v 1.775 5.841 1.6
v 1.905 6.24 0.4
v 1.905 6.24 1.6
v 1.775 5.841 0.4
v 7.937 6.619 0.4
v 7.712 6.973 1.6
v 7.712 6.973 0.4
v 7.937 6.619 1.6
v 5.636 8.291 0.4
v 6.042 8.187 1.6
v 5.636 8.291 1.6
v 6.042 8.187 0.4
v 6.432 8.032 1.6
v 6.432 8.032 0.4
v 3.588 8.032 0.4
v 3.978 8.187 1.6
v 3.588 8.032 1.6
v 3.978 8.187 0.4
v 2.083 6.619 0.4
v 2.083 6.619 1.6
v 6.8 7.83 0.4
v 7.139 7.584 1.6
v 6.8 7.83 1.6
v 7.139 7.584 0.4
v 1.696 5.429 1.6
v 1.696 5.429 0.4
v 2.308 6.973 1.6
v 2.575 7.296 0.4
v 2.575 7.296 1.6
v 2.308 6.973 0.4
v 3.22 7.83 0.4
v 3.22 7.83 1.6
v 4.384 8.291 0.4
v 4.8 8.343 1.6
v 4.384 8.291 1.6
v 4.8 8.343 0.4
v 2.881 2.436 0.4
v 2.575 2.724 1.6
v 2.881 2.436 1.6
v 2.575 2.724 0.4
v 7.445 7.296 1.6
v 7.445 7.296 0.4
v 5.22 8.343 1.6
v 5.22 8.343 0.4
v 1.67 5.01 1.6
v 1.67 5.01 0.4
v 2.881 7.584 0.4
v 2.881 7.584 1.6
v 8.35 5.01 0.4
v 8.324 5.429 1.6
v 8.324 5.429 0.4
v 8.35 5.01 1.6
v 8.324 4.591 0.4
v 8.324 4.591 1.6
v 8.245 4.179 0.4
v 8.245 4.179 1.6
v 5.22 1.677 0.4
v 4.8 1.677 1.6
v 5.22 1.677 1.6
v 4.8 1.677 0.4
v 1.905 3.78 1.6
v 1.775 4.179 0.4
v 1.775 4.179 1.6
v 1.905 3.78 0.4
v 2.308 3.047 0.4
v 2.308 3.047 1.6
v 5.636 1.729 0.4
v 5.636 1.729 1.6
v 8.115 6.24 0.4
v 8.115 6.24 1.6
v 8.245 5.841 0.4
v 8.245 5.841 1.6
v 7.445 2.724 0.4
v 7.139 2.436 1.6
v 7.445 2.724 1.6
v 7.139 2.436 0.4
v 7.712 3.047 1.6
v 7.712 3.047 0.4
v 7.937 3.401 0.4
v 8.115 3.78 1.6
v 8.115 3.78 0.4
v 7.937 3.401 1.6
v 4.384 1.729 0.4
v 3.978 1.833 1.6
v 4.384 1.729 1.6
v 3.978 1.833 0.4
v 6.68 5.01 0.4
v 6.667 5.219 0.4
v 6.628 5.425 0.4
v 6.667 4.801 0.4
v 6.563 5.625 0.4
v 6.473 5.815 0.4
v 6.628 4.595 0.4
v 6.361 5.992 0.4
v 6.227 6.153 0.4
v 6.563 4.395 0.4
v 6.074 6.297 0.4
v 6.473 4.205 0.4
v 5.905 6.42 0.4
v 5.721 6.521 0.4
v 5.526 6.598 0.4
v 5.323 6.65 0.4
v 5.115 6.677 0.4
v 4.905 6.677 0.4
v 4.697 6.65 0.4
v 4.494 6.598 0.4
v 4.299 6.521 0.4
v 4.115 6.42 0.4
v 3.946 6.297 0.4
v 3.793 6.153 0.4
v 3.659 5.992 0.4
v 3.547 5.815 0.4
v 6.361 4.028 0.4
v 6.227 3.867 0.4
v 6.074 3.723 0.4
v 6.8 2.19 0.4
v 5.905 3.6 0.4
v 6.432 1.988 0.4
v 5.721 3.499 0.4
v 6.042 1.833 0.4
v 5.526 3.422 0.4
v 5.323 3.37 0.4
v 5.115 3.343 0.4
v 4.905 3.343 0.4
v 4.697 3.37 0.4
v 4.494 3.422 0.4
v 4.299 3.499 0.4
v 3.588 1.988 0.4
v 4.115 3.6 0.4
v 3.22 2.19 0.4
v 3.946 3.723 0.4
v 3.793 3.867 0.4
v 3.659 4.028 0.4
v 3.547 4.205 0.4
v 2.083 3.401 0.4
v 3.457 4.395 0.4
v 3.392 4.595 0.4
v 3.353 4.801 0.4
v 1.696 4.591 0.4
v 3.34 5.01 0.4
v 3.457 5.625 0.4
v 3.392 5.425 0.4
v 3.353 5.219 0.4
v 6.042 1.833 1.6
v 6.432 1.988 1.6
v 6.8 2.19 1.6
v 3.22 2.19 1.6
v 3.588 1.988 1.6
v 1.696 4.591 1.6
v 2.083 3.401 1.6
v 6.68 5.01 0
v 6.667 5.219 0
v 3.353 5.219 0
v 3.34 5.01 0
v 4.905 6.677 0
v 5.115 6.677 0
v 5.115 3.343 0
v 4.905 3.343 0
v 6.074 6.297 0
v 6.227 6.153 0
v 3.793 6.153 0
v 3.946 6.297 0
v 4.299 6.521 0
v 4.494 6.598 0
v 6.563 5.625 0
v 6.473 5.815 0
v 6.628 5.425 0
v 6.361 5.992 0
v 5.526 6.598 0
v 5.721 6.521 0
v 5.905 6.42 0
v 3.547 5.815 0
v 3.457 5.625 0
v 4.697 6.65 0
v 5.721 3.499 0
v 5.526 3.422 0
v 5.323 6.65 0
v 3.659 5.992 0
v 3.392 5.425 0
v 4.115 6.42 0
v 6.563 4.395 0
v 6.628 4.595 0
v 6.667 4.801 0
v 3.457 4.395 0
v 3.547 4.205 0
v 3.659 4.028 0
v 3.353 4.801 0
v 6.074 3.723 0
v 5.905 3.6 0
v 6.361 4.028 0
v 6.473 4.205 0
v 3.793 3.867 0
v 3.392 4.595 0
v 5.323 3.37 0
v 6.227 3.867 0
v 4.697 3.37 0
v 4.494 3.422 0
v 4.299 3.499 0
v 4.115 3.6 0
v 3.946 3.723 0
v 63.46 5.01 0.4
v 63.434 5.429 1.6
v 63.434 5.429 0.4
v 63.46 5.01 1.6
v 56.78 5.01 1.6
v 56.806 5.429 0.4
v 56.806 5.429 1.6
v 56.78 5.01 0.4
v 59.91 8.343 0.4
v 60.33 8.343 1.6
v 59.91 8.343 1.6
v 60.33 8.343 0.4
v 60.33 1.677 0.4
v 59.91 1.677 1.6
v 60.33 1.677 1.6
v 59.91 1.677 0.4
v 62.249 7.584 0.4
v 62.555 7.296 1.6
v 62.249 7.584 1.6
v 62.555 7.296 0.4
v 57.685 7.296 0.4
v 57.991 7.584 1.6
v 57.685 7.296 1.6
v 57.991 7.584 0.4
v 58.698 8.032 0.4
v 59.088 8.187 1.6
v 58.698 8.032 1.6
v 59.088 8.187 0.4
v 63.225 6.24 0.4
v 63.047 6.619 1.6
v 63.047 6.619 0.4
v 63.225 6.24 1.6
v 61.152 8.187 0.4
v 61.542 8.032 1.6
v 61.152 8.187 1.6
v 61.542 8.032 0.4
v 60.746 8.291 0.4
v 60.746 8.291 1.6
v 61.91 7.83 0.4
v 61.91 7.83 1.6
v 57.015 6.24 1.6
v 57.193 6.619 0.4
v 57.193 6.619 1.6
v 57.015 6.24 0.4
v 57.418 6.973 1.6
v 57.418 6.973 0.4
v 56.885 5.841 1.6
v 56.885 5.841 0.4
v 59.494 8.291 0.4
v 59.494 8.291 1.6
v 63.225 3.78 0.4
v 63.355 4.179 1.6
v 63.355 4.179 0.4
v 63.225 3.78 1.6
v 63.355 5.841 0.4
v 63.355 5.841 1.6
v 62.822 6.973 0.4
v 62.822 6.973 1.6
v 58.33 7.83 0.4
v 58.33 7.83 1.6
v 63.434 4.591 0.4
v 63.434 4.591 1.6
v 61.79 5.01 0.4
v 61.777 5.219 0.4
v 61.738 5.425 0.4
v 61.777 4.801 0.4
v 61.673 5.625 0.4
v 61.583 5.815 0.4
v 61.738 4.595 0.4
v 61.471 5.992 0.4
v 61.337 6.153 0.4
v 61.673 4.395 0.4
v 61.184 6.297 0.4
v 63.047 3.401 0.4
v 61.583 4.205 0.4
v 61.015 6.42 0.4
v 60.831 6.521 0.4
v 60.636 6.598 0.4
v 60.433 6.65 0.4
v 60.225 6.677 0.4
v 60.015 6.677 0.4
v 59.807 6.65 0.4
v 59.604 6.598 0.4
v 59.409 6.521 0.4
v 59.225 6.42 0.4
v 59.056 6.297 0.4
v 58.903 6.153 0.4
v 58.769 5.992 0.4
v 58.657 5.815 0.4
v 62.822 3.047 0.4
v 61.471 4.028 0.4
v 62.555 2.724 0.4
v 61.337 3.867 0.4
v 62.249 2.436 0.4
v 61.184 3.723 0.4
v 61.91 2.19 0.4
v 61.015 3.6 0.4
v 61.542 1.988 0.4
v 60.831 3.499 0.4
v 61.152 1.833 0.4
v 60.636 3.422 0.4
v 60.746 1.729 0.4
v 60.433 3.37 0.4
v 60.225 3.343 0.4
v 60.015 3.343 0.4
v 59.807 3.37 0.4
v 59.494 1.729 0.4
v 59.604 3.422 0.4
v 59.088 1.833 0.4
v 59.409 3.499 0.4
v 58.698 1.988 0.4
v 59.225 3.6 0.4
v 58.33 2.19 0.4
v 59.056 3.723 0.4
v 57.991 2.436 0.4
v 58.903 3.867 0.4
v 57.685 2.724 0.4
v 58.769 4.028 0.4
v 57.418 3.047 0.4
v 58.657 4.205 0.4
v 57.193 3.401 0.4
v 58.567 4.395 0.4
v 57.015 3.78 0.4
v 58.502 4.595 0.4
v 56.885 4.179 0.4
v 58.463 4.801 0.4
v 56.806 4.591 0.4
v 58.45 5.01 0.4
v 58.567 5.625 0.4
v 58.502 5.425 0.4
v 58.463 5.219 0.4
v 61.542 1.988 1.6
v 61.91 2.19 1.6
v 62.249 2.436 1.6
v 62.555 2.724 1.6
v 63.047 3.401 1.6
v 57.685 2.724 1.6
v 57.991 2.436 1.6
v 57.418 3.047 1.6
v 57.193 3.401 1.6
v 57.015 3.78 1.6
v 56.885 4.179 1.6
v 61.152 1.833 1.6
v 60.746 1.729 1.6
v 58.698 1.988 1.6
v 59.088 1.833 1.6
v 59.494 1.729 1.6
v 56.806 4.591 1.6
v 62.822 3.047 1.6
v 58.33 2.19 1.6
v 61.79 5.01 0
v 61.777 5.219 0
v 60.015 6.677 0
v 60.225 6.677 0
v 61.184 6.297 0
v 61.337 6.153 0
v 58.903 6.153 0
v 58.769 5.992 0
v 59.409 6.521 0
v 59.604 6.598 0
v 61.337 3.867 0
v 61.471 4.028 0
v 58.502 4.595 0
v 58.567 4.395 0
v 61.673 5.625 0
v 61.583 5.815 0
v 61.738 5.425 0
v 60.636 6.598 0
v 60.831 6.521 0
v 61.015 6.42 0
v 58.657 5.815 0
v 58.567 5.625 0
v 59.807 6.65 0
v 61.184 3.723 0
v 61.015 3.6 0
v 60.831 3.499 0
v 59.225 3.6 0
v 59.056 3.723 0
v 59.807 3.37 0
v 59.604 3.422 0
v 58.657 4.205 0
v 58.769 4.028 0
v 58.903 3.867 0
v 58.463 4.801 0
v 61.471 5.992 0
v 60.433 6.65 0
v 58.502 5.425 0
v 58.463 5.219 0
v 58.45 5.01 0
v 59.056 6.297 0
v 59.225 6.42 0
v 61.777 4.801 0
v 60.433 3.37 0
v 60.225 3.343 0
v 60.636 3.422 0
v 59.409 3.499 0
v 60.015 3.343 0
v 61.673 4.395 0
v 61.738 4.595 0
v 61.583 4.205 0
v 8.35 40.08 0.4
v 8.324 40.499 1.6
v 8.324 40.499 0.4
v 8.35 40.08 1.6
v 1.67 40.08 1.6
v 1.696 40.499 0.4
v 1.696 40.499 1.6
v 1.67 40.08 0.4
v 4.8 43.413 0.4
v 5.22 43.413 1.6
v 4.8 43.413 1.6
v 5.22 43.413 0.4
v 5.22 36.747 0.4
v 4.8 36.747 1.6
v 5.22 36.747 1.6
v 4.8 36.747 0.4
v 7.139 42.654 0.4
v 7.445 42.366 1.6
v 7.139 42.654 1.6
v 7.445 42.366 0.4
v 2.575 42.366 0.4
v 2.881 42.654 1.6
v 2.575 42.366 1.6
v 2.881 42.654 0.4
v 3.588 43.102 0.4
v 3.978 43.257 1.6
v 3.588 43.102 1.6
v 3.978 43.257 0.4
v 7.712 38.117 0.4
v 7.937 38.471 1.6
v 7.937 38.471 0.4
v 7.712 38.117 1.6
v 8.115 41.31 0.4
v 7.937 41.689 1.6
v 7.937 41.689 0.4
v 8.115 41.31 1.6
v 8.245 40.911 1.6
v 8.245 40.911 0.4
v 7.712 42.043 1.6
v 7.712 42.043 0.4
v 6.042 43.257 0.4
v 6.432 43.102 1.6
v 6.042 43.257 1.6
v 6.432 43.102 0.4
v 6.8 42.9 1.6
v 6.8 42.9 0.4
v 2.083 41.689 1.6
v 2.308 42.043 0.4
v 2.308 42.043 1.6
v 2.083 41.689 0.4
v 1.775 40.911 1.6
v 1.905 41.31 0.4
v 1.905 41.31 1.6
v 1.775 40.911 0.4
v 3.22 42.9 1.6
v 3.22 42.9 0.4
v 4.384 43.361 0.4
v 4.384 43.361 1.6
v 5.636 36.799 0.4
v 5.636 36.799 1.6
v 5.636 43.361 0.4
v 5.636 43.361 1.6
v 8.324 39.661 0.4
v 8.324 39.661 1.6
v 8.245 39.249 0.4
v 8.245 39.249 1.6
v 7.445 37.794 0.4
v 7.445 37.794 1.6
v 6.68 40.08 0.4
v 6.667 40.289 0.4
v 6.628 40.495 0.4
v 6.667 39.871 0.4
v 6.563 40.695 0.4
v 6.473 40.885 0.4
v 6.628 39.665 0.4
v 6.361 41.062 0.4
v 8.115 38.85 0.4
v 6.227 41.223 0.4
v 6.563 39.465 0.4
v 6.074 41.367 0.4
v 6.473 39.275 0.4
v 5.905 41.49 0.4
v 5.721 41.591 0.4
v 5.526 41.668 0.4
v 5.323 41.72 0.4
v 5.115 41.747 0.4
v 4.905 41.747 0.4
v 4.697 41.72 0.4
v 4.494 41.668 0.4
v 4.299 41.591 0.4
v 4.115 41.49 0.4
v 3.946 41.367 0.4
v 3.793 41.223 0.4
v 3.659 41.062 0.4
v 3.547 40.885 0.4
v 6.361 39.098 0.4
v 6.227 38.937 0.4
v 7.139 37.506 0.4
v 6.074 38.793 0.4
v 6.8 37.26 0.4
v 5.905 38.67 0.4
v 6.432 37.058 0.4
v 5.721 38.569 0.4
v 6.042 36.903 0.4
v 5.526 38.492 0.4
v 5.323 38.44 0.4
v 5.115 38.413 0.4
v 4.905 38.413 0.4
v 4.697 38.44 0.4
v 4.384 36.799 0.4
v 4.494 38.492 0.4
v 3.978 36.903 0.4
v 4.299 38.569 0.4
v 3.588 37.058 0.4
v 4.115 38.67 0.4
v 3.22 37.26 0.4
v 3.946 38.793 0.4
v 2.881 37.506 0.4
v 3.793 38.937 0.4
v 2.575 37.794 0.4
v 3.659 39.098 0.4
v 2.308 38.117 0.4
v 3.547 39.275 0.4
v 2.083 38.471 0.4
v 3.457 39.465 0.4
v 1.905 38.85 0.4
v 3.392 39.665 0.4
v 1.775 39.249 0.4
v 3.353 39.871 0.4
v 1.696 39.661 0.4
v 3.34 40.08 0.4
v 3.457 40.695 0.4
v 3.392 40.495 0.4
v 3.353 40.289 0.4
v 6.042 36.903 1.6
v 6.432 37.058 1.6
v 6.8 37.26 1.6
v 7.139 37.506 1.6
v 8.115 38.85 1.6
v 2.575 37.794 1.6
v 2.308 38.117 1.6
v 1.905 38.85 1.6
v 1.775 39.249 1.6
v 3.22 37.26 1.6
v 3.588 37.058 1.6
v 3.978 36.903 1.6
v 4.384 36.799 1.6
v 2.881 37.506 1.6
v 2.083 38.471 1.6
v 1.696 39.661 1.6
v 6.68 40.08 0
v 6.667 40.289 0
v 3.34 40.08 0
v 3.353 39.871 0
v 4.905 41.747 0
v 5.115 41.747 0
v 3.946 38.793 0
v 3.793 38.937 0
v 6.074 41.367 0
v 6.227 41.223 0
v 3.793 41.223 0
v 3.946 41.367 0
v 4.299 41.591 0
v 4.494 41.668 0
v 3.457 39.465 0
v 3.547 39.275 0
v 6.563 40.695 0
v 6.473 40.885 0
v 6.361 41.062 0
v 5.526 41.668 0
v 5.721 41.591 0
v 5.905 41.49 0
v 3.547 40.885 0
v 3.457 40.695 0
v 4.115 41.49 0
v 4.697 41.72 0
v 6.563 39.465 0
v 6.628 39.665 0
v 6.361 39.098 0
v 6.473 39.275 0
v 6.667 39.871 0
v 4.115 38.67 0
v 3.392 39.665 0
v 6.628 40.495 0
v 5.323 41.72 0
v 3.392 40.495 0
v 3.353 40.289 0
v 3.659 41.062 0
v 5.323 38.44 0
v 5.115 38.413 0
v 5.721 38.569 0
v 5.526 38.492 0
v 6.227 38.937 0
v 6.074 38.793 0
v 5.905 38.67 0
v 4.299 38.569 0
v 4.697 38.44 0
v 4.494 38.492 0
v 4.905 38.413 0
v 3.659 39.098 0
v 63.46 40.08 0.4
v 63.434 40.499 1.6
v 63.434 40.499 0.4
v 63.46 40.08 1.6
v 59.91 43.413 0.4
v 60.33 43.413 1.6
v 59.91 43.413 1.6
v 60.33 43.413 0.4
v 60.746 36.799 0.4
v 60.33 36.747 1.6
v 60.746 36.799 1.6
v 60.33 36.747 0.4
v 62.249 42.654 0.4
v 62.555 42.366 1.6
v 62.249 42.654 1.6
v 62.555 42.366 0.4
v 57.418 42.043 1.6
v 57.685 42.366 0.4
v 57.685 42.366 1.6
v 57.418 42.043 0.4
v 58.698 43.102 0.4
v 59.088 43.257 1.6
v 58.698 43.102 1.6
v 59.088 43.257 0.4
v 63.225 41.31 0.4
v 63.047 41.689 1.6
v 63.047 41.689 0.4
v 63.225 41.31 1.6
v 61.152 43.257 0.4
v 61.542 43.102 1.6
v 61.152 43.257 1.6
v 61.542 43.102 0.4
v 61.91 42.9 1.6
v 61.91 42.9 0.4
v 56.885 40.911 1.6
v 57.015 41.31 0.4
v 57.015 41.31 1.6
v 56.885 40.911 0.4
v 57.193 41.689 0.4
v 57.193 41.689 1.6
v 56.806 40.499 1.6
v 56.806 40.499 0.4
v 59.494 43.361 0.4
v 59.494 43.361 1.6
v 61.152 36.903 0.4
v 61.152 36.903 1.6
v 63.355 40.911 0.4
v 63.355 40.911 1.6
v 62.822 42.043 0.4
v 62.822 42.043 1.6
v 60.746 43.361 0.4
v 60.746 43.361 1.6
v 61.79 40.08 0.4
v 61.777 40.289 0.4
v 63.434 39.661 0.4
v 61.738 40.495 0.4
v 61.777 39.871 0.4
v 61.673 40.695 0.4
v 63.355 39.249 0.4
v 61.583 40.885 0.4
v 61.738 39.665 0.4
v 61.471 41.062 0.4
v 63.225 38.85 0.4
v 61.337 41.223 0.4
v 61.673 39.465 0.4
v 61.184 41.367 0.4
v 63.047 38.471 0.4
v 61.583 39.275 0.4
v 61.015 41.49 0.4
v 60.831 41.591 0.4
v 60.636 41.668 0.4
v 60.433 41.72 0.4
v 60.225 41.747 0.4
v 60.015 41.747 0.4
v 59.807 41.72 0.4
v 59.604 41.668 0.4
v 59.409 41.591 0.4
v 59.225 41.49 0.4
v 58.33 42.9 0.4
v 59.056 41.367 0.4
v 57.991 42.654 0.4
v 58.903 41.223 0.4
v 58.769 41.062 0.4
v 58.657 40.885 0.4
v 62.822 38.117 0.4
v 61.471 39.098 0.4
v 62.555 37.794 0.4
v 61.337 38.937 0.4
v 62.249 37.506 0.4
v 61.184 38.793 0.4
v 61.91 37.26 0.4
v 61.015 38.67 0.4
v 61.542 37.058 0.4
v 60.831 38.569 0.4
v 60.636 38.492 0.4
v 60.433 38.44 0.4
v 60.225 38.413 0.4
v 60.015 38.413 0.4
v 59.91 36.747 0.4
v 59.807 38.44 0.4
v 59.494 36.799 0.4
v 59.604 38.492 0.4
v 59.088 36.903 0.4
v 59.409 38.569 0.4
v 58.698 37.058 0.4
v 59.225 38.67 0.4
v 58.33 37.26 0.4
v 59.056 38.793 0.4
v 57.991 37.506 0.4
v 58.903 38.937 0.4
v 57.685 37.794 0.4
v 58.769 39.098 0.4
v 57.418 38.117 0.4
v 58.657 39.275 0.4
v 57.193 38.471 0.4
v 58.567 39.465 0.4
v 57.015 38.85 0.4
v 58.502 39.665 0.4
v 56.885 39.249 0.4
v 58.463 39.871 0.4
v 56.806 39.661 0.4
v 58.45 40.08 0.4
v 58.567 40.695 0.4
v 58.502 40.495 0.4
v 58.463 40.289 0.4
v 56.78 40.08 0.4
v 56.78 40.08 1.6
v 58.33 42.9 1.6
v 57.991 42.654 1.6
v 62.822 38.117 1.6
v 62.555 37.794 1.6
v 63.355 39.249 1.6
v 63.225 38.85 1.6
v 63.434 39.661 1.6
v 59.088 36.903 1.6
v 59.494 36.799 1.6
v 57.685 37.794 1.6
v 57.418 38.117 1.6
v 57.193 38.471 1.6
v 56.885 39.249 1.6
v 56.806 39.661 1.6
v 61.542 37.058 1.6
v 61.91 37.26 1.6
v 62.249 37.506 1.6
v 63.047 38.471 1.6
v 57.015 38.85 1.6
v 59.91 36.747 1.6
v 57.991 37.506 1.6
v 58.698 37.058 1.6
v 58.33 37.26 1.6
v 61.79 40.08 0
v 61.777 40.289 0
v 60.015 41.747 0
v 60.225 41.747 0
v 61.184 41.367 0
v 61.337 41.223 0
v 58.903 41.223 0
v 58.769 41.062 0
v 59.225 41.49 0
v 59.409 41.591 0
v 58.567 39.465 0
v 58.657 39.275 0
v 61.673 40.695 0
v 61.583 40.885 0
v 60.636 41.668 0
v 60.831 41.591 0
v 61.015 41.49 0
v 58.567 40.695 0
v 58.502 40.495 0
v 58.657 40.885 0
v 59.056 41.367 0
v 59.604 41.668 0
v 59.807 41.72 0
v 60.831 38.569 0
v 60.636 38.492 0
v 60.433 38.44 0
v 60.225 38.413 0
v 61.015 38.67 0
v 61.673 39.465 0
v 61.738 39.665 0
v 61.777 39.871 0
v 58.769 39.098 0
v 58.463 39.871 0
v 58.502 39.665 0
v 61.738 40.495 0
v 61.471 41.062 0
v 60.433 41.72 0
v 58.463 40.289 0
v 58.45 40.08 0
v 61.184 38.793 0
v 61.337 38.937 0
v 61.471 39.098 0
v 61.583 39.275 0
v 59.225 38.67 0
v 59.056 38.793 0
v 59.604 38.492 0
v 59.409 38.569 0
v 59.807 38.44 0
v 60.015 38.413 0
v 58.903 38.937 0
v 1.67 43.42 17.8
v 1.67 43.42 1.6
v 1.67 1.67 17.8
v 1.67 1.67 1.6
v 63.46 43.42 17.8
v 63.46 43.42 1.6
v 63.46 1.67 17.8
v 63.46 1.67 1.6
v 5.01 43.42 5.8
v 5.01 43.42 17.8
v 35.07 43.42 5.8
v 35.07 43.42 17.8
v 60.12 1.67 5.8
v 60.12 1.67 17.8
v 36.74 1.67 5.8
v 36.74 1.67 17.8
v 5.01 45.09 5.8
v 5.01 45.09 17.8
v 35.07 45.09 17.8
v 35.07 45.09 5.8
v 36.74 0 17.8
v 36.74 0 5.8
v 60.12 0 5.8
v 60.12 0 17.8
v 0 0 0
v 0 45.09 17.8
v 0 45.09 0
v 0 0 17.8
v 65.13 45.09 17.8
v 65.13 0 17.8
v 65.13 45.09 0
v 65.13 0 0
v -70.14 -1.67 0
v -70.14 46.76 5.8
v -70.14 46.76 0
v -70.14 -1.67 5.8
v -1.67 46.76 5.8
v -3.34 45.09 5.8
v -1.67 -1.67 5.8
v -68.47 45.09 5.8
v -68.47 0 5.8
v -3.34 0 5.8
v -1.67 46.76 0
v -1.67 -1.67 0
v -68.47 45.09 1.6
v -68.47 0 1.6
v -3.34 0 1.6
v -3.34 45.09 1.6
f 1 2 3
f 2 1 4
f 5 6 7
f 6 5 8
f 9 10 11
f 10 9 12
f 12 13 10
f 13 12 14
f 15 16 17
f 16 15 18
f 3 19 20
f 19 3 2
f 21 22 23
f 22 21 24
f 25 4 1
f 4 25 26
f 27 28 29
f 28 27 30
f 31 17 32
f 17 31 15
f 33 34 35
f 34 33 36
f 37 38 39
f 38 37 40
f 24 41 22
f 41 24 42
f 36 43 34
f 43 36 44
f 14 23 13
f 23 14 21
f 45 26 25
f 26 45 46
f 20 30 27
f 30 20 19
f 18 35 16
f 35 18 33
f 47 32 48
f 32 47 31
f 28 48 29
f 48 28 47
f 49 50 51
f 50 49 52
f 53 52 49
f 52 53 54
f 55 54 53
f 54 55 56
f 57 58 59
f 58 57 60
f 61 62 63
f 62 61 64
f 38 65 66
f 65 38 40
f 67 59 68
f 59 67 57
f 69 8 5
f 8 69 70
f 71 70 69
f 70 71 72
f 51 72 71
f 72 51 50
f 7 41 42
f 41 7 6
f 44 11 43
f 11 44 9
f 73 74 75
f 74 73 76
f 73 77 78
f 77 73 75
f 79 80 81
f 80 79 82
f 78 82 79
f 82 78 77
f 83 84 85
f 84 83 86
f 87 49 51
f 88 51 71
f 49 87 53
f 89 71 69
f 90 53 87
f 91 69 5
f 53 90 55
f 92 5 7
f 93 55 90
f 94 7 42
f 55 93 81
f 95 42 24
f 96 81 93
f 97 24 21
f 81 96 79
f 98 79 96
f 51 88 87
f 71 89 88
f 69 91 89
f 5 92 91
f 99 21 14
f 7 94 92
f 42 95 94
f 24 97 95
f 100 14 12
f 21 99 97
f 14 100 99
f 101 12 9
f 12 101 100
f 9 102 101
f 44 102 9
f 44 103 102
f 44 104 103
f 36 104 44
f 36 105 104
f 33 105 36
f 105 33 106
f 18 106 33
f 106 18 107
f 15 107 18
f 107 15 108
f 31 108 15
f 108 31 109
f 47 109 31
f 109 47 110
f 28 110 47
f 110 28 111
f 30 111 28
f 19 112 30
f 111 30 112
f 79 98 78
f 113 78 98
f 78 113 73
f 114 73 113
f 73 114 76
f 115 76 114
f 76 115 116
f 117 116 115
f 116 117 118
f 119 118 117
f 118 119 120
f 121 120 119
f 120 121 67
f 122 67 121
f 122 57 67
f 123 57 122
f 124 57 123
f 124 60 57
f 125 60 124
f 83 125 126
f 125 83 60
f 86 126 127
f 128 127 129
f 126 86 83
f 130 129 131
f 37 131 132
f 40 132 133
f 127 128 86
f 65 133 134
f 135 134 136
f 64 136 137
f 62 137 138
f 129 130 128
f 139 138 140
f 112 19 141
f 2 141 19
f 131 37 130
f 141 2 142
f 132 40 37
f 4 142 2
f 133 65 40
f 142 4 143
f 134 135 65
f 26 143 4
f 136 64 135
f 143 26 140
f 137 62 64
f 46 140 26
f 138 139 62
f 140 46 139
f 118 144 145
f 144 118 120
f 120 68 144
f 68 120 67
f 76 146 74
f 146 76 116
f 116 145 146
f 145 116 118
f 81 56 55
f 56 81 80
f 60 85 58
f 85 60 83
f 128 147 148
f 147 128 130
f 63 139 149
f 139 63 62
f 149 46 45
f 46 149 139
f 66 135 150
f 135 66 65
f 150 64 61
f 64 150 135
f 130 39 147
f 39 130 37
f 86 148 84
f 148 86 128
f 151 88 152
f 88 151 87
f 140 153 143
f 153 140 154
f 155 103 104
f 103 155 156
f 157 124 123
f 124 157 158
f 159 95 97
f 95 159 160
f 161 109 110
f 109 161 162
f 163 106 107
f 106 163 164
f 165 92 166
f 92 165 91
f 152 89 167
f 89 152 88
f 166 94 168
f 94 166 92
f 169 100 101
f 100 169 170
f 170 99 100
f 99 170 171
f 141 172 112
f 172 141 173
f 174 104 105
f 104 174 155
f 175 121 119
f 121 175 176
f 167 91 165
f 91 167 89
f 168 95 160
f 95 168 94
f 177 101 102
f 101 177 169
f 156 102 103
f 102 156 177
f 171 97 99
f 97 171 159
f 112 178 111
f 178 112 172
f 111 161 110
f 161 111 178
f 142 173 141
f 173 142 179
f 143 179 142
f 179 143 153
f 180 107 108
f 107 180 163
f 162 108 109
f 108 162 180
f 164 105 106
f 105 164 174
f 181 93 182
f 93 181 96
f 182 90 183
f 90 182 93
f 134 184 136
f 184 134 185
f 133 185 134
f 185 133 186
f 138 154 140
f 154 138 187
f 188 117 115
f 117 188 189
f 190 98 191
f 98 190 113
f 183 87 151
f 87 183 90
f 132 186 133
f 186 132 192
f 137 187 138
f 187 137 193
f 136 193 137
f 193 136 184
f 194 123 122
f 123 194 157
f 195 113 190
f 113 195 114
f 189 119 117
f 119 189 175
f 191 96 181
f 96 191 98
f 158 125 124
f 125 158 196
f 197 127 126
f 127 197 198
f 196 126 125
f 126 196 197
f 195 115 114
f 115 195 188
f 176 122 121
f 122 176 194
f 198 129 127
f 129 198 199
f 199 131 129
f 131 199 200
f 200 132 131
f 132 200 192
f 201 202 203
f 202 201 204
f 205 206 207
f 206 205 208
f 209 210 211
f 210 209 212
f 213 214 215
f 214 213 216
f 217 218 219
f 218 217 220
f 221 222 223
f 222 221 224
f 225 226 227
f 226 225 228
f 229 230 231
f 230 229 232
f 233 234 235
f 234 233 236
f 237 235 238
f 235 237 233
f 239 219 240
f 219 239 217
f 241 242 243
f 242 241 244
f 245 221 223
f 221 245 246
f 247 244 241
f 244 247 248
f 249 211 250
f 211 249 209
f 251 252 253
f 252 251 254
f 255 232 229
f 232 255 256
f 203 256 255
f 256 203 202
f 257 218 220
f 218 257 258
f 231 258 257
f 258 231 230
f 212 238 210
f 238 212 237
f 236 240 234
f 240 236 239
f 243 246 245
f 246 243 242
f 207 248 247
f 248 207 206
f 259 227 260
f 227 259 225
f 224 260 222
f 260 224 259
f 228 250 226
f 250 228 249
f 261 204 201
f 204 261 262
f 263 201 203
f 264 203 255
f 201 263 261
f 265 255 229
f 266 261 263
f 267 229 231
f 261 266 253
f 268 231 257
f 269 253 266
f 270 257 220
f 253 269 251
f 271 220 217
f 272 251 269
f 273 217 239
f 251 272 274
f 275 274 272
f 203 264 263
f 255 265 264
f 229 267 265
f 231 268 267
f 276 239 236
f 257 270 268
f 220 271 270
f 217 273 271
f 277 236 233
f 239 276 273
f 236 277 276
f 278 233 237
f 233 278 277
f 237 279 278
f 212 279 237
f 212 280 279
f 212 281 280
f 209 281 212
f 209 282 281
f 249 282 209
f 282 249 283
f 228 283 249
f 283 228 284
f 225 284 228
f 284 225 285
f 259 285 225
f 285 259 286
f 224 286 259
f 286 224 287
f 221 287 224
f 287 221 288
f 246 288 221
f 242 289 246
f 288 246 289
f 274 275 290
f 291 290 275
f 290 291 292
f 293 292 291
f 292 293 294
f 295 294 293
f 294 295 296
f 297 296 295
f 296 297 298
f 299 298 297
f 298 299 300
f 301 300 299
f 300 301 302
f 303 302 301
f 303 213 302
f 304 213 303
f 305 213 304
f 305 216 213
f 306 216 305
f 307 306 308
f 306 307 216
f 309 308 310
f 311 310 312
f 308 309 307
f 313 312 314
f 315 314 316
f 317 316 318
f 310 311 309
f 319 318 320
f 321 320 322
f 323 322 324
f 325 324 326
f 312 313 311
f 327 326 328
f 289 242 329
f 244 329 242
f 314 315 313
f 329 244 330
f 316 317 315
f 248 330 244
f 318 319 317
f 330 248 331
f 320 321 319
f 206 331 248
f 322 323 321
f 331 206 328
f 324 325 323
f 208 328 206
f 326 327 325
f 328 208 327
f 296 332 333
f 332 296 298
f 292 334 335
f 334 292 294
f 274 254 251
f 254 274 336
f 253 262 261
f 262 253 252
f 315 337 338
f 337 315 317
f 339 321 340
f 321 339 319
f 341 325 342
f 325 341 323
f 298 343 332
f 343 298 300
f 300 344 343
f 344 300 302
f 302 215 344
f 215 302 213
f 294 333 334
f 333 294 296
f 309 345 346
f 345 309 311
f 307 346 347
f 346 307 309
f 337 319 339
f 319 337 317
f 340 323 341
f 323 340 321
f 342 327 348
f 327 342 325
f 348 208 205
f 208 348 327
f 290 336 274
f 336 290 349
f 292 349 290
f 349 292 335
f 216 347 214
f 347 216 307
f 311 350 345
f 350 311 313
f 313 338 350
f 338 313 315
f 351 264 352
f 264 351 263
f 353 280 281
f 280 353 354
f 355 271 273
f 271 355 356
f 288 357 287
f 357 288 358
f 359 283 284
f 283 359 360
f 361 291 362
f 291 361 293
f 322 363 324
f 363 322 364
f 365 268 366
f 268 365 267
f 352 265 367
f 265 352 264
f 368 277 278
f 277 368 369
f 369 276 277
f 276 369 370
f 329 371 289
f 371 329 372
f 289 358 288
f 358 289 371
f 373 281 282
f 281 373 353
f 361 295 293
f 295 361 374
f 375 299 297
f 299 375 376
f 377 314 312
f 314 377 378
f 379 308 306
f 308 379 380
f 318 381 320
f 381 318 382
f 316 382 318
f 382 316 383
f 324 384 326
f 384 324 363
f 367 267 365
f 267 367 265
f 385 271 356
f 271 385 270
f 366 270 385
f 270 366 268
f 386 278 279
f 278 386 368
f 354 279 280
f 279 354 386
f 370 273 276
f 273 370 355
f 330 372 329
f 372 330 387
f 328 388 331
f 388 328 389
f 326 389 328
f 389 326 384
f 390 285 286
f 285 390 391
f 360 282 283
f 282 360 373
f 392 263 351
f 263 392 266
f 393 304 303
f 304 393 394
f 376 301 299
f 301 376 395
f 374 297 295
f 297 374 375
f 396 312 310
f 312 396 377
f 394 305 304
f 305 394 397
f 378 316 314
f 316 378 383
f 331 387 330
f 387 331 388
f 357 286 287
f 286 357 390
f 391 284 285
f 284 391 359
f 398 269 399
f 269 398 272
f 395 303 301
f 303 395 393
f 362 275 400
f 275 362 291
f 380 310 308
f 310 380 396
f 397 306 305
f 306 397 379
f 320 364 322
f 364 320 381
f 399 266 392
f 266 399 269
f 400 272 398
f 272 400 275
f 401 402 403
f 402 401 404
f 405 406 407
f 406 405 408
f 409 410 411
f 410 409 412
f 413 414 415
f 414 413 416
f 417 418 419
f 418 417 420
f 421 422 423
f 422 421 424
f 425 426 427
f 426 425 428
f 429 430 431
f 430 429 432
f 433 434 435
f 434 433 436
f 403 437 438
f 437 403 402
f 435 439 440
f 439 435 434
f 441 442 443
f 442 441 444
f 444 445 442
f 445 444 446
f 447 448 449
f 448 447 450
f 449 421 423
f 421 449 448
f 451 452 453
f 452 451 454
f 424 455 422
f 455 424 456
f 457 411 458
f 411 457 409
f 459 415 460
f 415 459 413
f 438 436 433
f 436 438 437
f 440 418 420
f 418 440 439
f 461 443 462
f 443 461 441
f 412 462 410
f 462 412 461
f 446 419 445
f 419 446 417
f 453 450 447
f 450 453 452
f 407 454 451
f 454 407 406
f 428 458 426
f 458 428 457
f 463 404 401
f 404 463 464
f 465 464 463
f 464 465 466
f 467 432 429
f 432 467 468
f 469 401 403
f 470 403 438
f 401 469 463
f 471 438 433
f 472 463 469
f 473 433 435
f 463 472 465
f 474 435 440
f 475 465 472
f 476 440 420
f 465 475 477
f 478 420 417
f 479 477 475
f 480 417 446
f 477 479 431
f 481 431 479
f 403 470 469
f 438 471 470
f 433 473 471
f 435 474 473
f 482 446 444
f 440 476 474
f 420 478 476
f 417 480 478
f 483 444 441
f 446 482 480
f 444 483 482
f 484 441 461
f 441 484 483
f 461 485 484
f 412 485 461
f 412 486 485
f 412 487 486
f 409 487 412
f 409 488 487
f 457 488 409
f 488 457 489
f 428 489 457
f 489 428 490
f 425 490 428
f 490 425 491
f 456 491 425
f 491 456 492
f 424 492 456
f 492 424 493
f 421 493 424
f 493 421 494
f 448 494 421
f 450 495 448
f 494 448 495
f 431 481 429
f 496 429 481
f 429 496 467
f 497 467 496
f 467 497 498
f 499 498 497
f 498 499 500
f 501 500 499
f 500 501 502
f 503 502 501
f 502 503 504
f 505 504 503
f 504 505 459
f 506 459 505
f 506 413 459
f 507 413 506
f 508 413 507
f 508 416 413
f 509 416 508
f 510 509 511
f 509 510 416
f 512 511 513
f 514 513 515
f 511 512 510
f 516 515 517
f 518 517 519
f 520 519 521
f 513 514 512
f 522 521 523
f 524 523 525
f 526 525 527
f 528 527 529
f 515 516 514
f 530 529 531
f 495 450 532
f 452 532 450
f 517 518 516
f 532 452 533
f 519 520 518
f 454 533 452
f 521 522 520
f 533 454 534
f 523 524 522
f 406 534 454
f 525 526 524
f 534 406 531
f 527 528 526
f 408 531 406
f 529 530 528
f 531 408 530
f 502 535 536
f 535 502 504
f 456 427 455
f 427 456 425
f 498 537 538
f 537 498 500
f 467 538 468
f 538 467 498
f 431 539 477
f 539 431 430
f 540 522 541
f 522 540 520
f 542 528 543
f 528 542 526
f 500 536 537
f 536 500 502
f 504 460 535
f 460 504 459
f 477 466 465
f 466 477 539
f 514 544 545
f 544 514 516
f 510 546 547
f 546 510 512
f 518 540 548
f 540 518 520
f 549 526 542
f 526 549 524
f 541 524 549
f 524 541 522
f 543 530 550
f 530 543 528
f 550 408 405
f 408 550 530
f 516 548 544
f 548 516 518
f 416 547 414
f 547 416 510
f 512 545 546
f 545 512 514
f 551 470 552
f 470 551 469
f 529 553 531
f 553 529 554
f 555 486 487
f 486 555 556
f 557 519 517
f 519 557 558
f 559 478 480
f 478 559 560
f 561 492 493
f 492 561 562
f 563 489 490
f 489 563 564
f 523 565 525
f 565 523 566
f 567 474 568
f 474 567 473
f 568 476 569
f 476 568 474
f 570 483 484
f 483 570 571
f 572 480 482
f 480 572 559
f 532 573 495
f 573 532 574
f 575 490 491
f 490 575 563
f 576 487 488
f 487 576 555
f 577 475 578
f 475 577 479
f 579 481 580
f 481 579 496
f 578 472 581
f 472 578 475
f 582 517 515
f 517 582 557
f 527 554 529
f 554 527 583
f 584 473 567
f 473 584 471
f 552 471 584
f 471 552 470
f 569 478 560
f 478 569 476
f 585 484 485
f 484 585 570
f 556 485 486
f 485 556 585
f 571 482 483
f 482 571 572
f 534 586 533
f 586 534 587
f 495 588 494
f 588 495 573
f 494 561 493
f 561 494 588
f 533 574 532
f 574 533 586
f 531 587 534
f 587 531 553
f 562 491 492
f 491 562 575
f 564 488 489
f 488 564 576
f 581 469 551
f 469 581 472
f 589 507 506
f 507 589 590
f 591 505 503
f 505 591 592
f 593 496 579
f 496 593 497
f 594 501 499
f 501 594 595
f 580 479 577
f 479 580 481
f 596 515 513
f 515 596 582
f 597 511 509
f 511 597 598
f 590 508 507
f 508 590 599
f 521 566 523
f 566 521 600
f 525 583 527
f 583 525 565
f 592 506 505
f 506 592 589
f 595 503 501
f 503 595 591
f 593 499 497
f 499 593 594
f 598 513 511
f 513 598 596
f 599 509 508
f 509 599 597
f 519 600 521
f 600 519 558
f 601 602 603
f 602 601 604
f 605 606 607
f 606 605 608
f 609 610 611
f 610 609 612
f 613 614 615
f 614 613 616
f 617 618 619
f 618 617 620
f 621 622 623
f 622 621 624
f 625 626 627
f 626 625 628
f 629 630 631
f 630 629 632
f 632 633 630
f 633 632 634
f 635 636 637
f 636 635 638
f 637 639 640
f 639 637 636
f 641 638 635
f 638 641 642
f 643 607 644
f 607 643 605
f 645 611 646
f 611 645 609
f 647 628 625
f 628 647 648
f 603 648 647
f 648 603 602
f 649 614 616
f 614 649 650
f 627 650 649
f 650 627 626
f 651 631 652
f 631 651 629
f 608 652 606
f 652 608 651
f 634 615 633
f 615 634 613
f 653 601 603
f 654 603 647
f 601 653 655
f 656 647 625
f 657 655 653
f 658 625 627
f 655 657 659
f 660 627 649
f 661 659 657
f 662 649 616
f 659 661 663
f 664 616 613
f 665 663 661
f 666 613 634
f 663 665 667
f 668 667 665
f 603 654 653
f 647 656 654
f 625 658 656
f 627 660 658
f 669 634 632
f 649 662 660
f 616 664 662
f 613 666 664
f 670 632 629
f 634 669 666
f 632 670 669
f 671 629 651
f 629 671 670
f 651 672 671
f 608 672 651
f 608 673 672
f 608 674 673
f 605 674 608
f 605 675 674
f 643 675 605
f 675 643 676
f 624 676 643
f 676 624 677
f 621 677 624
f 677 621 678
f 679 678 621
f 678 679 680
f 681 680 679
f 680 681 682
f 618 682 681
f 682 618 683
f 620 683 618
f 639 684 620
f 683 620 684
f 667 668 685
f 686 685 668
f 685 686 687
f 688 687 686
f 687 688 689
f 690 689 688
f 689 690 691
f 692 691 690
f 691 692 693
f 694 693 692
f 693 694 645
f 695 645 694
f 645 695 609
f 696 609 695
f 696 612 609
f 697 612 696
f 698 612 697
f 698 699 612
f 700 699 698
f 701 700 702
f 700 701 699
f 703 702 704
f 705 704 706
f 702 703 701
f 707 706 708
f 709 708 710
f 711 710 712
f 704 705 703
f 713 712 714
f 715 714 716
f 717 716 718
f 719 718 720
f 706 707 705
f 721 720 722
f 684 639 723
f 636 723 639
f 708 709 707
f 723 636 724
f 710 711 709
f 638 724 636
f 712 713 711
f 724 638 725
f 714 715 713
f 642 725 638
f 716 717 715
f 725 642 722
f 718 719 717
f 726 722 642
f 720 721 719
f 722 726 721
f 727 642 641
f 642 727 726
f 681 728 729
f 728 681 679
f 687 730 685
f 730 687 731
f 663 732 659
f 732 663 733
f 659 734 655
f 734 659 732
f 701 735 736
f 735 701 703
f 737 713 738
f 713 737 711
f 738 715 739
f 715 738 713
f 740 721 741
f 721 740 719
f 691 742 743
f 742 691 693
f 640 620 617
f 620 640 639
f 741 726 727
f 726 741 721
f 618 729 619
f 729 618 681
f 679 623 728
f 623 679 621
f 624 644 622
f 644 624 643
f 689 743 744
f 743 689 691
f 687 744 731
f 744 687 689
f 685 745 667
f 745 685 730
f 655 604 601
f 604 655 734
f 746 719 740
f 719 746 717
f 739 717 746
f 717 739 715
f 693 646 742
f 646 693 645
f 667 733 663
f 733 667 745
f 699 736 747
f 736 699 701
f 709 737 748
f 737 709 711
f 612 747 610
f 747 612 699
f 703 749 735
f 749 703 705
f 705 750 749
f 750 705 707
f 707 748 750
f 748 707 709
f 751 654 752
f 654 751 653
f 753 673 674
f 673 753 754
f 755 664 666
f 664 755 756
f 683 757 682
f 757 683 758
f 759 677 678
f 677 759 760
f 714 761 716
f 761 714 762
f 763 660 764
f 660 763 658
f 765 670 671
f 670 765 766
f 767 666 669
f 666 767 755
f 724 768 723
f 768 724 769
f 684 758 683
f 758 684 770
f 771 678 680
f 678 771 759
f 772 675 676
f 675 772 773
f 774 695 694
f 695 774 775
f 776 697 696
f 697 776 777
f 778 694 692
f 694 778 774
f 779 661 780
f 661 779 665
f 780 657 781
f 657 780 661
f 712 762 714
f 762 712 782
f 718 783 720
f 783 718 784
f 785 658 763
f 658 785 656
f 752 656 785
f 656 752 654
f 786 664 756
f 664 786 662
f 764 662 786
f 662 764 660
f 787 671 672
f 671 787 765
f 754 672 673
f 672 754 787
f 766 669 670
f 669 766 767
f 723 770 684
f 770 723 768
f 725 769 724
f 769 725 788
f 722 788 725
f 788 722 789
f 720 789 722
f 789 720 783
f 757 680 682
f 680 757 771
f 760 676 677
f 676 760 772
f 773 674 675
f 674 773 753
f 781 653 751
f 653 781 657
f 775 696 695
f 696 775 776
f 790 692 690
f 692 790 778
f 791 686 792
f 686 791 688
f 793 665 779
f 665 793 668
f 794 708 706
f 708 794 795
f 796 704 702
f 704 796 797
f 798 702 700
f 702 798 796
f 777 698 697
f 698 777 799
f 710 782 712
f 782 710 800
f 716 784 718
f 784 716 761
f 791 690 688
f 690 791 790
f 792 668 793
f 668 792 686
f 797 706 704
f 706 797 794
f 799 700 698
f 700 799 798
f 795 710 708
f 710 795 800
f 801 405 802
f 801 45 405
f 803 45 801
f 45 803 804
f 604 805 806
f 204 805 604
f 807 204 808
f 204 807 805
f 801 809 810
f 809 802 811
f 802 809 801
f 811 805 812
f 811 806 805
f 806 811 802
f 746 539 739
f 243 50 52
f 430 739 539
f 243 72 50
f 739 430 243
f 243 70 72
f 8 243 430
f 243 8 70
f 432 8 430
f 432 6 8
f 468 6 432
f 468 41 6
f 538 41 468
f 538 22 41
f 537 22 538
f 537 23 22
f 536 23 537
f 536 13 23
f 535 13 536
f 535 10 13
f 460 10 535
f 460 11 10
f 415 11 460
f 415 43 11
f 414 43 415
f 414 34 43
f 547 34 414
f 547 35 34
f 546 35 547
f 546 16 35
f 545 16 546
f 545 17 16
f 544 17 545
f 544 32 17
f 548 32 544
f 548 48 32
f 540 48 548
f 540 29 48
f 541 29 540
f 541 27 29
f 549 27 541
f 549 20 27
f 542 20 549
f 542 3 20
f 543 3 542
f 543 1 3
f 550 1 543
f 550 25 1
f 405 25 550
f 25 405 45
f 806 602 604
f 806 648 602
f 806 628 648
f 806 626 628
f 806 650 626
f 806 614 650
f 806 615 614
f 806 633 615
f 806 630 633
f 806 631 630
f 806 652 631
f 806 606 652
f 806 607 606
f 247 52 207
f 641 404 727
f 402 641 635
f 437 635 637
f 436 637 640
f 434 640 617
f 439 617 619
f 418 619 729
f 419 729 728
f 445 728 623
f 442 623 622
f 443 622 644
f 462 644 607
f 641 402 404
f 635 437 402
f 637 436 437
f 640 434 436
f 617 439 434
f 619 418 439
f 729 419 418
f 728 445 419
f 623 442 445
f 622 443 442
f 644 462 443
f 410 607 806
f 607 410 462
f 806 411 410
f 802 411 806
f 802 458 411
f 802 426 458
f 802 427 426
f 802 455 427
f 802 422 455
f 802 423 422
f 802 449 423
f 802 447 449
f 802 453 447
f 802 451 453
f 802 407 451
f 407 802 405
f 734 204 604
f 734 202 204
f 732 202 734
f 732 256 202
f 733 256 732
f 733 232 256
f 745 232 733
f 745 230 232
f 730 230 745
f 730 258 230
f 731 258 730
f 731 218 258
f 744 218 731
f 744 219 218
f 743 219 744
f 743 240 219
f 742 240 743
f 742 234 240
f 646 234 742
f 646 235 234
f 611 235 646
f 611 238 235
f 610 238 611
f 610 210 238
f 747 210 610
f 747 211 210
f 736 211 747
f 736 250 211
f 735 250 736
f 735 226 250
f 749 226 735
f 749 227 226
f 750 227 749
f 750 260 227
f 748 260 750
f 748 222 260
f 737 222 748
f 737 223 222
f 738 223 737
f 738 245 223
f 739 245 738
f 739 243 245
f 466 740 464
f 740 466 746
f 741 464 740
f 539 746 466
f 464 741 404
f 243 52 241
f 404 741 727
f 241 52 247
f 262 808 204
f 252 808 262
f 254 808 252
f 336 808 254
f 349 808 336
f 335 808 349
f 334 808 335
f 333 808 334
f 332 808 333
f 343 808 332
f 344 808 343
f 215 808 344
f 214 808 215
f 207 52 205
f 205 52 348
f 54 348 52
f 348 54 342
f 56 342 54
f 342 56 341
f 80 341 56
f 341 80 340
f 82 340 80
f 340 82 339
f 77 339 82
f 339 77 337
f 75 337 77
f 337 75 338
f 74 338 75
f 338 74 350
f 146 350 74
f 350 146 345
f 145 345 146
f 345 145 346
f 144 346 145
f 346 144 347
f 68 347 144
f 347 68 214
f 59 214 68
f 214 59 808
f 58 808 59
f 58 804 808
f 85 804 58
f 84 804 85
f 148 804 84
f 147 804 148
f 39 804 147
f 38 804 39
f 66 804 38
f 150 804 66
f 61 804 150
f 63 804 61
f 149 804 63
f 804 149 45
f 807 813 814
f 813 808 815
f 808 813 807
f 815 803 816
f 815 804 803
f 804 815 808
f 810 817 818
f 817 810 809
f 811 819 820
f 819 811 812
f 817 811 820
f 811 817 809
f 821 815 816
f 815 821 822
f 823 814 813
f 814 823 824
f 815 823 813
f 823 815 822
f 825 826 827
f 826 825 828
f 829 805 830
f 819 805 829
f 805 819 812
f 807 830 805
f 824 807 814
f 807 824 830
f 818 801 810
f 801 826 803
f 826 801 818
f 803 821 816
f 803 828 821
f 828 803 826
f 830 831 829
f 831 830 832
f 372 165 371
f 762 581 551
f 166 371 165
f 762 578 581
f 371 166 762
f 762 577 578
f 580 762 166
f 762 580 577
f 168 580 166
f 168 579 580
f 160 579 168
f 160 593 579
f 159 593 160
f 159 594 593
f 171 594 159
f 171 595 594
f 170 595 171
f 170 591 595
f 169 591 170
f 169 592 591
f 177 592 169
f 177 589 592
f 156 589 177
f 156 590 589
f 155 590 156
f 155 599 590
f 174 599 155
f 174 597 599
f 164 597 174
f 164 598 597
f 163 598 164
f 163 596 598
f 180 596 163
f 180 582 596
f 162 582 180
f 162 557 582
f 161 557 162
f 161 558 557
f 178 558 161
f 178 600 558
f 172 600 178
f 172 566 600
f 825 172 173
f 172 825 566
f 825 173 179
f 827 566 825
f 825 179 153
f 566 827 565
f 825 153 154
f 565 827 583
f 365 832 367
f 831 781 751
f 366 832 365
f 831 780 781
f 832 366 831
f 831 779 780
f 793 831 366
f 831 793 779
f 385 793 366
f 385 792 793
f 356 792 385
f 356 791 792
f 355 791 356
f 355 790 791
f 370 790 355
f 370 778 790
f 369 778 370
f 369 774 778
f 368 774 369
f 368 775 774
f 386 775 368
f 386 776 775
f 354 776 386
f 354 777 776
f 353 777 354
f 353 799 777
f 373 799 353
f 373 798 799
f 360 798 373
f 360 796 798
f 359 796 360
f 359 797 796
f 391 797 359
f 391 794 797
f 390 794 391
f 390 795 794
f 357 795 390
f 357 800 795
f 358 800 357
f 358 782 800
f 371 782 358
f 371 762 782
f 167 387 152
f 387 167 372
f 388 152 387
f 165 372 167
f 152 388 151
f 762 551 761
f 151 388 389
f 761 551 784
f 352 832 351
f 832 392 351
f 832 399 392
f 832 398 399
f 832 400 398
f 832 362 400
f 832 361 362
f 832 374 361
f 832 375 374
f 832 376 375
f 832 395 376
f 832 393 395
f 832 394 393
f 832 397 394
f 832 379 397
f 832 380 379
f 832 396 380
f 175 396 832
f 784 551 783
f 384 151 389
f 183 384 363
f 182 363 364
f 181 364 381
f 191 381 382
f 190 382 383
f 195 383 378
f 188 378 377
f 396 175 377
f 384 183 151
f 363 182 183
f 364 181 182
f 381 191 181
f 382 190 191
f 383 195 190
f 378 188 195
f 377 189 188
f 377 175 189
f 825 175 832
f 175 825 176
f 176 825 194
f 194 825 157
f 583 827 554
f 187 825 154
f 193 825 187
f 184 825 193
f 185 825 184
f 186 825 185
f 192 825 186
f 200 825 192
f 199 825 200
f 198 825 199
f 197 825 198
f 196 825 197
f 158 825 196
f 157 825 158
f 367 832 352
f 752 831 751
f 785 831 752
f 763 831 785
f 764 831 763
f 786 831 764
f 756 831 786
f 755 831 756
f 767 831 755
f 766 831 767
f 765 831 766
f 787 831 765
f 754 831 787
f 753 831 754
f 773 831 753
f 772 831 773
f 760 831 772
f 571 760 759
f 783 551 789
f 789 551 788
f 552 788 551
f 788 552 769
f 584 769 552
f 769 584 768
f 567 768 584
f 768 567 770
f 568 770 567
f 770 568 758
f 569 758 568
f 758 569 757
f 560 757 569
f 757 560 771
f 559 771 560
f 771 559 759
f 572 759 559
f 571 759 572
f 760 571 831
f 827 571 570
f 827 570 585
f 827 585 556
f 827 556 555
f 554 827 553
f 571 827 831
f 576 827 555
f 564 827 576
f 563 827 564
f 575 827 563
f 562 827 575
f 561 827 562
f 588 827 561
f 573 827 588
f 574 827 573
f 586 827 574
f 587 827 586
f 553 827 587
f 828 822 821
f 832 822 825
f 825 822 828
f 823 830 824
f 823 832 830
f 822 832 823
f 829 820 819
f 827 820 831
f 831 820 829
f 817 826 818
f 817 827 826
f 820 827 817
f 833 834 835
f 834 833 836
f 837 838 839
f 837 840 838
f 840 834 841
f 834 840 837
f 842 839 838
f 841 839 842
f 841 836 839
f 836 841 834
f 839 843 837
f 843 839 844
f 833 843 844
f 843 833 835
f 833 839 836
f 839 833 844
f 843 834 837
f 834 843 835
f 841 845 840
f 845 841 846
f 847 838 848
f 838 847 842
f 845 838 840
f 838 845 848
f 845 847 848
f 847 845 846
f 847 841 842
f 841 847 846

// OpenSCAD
first_layer_height = 0.4;
layer_height = 0.6;

bottom_width = first_layer_height + 2*layer_height;
top_width = 2*layer_height;
wall_width = 1.67;

function xy_dim_adj(x) = ceil(x/wall_width)*wall_width;
function  z_dim_adj(z) = ceil(z/layer_height)*layer_height;

box_l = 61;
box_w = 41;
box_h = 16;
box_bt_h = 4;
cap_h = 4;

box_l_adj = xy_dim_adj(box_l);
box_w_adj = xy_dim_adj(box_w);
box_h_adj = z_dim_adj(box_h);
box_bt_h_adj = z_dim_adj(box_bt_h);
cap_h_adj = z_dim_adj(cap_h);

screws_hd = 5.55;
screws_hh = 2.38;
screws_hd_offset = first_layer_height;
screws_d = 3;
screws_xy = [
  [            3*wall_width, 3*wall_width],
  [box_l_adj - 1*wall_width, 3*wall_width],
  [            3*wall_width, box_w_adj-1*wall_width],
  [box_l_adj - 1*wall_width, box_w_adj-1*wall_width]
];

screws_hd_adj = xy_dim_adj(screws_hd);
screws_d_adj = xy_dim_adj(screws_d);

difference() {
  cube([box_l_adj+2*wall_width, box_w_adj+2*wall_width, box_h_adj+bottom_width]);
  union() {
    translate([wall_width, wall_width, bottom_width])
      cube([box_l_adj, box_w_adj, box_h_adj+bottom_width]);
      
    translate([xy_dim_adj(2)+wall_width, box_w_adj, bottom_width+box_bt_h_adj])
      cube([xy_dim_adj(30), 3*wall_width, box_h_adj+bottom_width]);
    translate([xy_dim_adj(34)+wall_width, -wall_width, bottom_width+box_bt_h_adj])
      cube([xy_dim_adj(23), 3*wall_width, box_h_adj+bottom_width]);
    
    for(xy = screws_xy) {
      translate([xy[0], xy[1], screws_hd_offset])
        cylinder(h=bottom_width, d=screws_hd_adj, $fn=50, center=false);
      translate([xy[0], xy[1], 0])
        cylinder(h=3*bottom_width, d=screws_d_adj, $fn=50, center=true);
    }
  }
}

// cap
translate([-box_l_adj-4*wall_width, 0, 0])
difference() {
  translate([-wall_width, -wall_width, 0])
    cube([box_l_adj+4*wall_width, box_w_adj+4*wall_width, cap_h_adj+bottom_width]);
  translate([0, 0, bottom_width])
    cube([box_l_adj+2*wall_width, box_w_adj+2*wall_width, cap_h_adj+2*bottom_width]);
}
